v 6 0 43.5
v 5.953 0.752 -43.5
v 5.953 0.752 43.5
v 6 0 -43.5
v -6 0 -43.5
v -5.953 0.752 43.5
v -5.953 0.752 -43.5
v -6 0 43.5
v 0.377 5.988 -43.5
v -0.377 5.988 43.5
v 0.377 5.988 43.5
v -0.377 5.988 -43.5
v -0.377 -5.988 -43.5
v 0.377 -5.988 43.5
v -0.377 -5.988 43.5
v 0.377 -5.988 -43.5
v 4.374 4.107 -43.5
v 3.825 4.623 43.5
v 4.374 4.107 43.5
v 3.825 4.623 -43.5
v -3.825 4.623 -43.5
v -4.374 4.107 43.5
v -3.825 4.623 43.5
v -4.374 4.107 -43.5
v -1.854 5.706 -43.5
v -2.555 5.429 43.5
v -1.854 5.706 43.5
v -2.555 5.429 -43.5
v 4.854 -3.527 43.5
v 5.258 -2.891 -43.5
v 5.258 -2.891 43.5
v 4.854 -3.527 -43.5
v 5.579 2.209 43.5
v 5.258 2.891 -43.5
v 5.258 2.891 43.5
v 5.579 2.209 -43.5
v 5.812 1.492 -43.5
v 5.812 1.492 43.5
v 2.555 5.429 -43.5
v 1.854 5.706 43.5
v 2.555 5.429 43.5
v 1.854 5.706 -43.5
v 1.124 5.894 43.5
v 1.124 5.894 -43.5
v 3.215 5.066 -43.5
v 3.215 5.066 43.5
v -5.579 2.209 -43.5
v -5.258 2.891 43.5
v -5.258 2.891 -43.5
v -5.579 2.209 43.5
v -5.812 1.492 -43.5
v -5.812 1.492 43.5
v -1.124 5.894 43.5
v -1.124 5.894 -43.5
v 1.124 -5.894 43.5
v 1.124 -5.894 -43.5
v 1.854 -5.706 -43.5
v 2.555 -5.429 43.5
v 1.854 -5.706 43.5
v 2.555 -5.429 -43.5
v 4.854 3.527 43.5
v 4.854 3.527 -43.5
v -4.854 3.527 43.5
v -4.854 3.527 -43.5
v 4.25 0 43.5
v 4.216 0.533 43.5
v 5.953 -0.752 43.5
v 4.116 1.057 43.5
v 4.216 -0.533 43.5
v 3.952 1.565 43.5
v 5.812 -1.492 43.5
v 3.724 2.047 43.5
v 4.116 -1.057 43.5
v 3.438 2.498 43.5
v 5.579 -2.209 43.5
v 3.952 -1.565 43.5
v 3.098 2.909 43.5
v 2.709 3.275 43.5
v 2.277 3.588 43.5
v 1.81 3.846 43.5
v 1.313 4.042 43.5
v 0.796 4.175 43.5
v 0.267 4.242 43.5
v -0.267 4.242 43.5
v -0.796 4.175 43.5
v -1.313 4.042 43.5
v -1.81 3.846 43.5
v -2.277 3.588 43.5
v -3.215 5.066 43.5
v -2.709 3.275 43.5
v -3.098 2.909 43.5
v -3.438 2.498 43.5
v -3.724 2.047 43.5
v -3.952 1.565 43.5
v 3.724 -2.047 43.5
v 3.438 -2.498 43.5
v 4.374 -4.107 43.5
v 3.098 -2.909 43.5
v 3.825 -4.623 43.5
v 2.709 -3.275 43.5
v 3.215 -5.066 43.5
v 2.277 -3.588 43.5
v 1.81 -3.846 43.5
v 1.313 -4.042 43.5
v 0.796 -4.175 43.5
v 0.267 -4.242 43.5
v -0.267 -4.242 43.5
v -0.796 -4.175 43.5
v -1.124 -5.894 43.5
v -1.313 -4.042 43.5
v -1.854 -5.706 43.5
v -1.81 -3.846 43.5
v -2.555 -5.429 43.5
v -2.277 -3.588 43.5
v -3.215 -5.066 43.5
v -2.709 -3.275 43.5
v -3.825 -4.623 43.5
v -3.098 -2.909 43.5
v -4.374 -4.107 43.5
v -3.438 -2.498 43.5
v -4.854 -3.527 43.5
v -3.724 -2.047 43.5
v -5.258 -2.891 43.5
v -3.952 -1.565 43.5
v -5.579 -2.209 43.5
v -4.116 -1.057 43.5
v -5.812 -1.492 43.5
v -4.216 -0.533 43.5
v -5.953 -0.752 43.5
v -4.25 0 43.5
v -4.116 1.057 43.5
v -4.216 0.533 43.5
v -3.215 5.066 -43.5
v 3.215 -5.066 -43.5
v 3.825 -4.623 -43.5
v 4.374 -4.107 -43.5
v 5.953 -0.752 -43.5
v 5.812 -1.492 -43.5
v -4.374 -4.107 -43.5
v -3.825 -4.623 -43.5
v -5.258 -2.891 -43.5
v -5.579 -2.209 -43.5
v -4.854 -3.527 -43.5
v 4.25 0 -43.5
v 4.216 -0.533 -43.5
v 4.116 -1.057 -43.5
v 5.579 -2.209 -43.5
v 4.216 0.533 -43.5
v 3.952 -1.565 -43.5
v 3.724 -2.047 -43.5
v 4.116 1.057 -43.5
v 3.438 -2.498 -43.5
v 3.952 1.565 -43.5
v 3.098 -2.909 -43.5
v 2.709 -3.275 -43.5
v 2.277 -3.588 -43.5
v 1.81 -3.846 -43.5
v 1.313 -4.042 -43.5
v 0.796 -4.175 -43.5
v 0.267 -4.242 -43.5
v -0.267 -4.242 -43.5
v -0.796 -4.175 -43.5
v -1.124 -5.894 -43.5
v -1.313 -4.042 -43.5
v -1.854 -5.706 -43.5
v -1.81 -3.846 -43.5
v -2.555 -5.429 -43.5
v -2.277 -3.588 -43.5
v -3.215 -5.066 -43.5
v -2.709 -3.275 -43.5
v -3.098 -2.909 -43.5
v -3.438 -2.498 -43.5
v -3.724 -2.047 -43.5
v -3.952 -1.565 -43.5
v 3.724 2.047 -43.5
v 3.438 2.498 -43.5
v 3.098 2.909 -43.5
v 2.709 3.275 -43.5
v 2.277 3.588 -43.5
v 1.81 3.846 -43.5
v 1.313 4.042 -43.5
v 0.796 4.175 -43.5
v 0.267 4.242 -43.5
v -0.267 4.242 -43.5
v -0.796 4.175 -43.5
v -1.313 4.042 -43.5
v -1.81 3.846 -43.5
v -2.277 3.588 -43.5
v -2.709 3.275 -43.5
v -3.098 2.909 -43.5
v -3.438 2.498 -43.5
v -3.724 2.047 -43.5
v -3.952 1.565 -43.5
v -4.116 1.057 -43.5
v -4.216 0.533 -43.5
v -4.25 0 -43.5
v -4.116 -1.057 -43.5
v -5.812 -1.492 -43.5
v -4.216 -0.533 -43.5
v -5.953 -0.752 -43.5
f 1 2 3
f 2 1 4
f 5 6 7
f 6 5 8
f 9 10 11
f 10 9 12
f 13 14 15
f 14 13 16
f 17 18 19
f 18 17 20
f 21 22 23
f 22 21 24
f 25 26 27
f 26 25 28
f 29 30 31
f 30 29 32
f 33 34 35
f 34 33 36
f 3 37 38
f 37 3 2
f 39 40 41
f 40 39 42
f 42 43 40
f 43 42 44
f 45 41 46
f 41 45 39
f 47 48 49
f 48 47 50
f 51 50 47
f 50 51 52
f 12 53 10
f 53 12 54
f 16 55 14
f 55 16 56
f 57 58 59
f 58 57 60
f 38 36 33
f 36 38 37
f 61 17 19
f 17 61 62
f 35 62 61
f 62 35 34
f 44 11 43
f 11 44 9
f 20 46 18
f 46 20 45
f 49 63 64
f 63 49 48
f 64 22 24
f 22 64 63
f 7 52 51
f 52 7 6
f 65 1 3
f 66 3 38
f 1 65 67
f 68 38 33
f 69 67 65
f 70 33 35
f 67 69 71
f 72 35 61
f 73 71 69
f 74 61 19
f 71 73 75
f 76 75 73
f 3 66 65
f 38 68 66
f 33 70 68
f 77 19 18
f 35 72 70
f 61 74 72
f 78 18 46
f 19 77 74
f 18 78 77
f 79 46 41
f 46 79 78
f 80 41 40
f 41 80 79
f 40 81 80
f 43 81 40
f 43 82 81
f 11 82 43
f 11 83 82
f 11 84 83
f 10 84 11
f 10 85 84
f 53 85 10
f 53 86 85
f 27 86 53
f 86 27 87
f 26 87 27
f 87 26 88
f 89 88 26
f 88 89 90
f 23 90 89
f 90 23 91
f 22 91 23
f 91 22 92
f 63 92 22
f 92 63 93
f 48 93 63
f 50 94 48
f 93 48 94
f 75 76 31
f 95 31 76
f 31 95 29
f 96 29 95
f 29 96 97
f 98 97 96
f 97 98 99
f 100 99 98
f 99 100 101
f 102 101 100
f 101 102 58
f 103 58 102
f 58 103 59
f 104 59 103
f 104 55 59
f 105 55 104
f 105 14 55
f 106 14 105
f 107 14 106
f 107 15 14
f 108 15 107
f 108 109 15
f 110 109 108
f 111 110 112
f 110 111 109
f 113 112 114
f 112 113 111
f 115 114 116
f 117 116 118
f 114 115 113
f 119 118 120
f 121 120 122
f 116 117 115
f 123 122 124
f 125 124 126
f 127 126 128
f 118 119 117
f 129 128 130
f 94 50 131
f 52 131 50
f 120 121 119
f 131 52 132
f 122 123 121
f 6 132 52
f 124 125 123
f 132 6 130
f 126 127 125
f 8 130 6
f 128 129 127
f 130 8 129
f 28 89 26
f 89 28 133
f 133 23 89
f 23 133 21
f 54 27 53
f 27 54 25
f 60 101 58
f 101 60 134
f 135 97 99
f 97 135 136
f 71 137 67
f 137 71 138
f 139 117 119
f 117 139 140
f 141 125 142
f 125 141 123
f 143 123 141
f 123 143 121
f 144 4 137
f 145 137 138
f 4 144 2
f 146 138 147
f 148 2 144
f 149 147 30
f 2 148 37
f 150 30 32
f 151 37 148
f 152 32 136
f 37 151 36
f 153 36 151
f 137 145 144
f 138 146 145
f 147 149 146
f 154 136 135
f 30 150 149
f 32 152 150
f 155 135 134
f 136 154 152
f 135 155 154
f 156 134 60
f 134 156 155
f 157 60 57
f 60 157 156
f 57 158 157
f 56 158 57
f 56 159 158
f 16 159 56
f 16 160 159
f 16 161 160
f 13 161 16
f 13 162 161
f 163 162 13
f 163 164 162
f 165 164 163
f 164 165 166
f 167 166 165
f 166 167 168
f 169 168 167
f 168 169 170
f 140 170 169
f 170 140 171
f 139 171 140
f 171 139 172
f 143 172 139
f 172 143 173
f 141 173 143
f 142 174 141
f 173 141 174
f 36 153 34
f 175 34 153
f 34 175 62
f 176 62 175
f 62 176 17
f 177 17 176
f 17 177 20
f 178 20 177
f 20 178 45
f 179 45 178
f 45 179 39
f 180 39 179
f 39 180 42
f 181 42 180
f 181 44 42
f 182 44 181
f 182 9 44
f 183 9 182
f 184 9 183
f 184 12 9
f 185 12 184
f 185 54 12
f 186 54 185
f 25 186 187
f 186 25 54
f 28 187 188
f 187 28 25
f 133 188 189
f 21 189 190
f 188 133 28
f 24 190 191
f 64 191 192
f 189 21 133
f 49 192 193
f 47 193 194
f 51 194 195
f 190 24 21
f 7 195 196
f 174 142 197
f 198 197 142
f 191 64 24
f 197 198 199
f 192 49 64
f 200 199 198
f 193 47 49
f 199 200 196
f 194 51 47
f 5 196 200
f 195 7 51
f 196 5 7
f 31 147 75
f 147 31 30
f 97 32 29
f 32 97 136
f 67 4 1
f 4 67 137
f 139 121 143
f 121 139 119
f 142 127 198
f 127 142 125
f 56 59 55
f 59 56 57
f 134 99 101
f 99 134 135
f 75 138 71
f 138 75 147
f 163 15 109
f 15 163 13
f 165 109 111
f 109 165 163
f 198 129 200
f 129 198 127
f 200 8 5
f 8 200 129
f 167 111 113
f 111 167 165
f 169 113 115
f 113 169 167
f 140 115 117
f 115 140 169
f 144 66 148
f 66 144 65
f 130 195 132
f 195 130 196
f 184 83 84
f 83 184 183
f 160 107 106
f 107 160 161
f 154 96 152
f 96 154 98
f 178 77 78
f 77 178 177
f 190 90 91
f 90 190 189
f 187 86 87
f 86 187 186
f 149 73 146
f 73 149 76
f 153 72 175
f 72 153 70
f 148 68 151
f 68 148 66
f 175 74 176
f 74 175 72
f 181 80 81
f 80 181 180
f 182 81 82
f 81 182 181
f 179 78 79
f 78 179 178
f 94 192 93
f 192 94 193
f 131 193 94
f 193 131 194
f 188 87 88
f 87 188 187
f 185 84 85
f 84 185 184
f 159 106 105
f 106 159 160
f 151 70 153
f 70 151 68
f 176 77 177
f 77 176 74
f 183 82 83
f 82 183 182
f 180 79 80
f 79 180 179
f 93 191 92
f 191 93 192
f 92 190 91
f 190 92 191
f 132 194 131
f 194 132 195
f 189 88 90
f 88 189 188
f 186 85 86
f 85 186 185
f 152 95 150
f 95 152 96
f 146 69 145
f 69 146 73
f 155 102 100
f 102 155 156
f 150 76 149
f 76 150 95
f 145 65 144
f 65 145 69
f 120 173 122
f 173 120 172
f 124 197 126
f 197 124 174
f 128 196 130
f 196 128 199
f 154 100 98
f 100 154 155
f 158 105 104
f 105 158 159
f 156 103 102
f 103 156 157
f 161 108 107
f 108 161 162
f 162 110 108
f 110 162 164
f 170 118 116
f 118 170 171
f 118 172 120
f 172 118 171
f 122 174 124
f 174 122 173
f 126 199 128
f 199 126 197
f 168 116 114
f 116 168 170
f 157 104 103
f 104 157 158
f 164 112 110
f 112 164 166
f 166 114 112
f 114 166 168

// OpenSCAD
$fn = 50;


difference() {
	union() {
		translate(v = [0, 0, -43.5000000000]) {
			cylinder(h = 87, r = 6.0000000000);
		}
	}
	union() {
		translate(v = [0, 0, -100.0000000000]) {
			cylinder(h = 200, r = 4.2500000000);
		}
	}
}
